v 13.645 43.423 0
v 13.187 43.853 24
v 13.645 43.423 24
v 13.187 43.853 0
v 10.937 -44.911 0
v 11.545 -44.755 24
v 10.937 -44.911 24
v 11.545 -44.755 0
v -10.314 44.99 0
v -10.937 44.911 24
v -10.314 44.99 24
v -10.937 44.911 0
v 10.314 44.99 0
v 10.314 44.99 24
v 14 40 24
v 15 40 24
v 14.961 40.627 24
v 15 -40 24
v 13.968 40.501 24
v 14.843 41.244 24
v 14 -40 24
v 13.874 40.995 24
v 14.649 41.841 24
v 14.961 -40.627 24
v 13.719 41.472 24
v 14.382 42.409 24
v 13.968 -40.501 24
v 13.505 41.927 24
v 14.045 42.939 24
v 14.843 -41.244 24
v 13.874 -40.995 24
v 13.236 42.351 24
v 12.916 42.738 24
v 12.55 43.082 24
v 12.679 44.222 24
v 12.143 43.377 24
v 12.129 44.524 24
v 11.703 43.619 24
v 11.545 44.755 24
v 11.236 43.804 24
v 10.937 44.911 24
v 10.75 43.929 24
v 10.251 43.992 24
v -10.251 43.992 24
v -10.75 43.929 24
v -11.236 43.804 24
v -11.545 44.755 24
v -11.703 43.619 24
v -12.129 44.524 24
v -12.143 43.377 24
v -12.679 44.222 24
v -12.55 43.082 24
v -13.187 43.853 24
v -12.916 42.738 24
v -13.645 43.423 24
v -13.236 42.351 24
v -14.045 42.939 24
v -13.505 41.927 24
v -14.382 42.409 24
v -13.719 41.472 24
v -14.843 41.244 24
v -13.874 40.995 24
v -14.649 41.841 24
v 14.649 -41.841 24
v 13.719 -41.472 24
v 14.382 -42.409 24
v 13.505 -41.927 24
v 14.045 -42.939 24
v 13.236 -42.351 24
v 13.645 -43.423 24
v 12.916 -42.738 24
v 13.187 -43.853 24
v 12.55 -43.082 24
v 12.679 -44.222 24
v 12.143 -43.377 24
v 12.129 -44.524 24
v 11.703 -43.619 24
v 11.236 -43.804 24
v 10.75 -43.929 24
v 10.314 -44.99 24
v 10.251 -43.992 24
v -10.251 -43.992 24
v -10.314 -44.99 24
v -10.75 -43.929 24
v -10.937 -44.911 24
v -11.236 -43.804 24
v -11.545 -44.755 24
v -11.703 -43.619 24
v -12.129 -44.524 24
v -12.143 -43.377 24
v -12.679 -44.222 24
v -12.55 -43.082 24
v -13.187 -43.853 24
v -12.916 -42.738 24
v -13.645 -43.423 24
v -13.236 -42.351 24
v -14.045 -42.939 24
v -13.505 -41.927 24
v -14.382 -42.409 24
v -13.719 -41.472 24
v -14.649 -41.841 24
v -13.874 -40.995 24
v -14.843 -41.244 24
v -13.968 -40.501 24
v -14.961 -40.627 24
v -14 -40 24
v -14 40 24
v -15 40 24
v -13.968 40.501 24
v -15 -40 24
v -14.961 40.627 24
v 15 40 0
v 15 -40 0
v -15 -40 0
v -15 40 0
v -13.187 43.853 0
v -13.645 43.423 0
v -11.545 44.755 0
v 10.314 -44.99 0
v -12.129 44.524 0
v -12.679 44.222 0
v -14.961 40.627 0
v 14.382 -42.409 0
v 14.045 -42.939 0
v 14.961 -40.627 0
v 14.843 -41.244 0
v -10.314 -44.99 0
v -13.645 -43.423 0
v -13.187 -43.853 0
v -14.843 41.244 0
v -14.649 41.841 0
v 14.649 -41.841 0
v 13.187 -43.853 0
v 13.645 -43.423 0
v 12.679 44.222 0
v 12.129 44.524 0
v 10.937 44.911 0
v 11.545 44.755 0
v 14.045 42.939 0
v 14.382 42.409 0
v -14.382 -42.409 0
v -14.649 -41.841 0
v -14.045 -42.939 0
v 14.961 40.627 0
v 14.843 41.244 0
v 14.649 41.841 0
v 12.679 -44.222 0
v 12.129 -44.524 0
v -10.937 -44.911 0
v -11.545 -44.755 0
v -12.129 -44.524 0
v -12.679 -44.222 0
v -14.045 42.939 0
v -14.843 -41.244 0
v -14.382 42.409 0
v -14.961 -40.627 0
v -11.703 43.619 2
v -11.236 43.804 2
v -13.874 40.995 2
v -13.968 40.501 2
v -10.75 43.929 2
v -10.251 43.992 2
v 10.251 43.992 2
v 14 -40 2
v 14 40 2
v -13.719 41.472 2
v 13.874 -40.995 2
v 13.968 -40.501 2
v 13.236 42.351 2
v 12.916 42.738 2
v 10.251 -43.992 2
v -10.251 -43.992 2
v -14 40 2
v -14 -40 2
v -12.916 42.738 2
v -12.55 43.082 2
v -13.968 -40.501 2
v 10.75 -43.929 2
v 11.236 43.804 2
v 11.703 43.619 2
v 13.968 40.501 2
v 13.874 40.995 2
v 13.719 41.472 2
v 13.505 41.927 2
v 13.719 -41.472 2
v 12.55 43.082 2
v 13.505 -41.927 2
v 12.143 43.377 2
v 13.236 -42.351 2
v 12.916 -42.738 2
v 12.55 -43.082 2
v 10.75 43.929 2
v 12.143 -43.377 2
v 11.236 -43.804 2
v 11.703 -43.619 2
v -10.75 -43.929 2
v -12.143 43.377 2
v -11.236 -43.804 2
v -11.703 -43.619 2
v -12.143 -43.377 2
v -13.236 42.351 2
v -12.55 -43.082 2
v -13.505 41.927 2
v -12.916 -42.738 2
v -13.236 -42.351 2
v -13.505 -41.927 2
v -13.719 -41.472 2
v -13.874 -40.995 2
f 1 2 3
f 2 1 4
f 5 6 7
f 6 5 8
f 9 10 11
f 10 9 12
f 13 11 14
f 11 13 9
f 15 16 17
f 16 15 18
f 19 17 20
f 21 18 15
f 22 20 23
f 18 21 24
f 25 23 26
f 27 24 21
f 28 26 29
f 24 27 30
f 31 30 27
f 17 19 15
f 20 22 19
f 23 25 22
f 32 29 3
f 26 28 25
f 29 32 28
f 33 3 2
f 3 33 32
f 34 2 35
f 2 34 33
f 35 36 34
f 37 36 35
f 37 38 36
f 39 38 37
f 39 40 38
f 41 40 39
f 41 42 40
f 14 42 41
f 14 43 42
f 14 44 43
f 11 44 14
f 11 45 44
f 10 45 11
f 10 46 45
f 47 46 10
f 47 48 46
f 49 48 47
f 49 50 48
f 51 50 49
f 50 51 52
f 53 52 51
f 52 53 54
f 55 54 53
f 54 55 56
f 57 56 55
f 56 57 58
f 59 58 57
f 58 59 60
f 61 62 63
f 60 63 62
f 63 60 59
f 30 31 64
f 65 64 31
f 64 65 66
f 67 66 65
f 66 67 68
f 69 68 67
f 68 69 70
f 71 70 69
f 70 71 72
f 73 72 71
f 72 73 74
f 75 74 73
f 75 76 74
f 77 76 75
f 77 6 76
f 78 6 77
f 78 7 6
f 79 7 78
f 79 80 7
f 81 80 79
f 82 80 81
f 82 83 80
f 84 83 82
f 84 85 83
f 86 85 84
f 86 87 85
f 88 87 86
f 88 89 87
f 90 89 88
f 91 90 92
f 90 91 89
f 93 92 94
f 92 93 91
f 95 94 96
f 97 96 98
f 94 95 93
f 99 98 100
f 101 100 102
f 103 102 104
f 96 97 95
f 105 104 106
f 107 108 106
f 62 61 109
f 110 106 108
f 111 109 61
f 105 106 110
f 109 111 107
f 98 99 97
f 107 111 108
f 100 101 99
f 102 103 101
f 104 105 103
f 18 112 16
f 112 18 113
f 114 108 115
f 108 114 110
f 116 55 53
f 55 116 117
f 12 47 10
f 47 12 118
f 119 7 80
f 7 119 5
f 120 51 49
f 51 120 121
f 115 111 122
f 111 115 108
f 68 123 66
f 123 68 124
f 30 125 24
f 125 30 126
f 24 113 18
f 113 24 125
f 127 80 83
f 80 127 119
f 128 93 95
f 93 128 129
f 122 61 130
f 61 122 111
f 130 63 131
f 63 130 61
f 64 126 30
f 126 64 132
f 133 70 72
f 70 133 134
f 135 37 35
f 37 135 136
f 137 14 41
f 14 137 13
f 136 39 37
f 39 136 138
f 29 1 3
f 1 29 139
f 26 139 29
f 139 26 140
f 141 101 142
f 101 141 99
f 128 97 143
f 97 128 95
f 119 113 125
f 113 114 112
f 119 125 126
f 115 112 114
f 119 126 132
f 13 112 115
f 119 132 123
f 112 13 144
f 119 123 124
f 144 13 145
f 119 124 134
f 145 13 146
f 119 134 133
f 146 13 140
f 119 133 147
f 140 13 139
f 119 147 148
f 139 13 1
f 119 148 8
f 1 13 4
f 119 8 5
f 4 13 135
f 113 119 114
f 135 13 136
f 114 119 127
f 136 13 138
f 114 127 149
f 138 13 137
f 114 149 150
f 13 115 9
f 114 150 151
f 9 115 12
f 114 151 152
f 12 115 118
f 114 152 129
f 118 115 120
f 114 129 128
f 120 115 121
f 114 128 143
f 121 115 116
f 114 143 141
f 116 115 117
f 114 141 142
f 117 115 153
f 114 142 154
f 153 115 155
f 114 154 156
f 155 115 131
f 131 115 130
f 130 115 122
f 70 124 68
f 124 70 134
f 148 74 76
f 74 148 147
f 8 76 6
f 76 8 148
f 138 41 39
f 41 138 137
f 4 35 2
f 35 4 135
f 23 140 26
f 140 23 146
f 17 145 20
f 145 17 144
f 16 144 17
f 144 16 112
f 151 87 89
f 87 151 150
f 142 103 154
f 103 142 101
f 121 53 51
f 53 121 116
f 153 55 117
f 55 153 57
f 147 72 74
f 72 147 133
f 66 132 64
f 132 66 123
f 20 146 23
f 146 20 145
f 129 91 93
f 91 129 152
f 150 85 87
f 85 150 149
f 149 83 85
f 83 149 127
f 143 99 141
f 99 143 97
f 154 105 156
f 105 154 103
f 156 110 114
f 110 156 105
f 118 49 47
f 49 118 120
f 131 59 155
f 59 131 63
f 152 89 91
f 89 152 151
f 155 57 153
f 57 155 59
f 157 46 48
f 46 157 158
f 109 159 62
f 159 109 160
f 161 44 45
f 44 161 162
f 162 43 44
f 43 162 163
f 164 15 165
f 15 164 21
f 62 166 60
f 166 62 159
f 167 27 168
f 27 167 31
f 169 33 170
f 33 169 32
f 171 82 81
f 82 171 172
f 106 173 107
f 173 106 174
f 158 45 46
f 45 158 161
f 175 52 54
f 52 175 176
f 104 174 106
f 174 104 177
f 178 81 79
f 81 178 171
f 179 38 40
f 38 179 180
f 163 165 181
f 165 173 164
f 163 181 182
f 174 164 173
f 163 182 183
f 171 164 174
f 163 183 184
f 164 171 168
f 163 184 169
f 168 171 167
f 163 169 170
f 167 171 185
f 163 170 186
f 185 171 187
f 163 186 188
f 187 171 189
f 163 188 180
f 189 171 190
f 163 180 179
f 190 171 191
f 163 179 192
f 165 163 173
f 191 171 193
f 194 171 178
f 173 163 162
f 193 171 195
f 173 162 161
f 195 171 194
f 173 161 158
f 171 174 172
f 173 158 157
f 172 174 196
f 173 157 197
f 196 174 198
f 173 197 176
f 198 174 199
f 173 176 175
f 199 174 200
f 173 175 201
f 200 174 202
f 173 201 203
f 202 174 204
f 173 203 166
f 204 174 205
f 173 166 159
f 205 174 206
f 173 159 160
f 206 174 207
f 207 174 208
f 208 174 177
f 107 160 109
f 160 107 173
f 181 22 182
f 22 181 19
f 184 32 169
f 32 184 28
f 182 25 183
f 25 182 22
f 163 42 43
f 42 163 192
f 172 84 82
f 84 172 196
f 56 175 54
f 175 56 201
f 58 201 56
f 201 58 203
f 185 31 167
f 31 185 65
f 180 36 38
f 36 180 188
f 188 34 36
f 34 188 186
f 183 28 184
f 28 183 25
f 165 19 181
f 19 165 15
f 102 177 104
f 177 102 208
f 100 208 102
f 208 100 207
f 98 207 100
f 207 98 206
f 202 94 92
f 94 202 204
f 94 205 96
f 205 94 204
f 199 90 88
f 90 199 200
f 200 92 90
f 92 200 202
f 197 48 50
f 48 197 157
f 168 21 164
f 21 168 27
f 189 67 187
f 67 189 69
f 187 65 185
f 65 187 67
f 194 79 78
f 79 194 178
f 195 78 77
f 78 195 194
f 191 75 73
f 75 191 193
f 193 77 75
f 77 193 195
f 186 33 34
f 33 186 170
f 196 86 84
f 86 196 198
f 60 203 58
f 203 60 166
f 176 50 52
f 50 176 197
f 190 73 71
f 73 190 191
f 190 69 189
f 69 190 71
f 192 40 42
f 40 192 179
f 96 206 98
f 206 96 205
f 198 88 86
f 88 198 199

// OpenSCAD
$fn = 50;


difference() {
	union() {
		hull() {
			translate(v = [-10.0000000000, 40.0000000000, 0]) {
				cylinder(h = 24, r = 5);
			}
			translate(v = [10.0000000000, 40.0000000000, 0]) {
				cylinder(h = 24, r = 5);
			}
			translate(v = [-10.0000000000, -40.0000000000, 0]) {
				cylinder(h = 24, r = 5);
			}
			translate(v = [10.0000000000, -40.0000000000, 0]) {
				cylinder(h = 24, r = 5);
			}
		}
	}
	union() {
		translate(v = [0, 0, 2]) {
			hull() {
				translate(v = [-10.0000000000, 40.0000000000, 0]) {
					cylinder(h = 22, r = 4);
				}
				translate(v = [10.0000000000, 40.0000000000, 0]) {
					cylinder(h = 22, r = 4);
				}
				translate(v = [-10.0000000000, -40.0000000000, 0]) {
					cylinder(h = 22, r = 4);
				}
				translate(v = [10.0000000000, -40.0000000000, 0]) {
					cylinder(h = 22, r = 4);
				}
			}
		}
	}
}
